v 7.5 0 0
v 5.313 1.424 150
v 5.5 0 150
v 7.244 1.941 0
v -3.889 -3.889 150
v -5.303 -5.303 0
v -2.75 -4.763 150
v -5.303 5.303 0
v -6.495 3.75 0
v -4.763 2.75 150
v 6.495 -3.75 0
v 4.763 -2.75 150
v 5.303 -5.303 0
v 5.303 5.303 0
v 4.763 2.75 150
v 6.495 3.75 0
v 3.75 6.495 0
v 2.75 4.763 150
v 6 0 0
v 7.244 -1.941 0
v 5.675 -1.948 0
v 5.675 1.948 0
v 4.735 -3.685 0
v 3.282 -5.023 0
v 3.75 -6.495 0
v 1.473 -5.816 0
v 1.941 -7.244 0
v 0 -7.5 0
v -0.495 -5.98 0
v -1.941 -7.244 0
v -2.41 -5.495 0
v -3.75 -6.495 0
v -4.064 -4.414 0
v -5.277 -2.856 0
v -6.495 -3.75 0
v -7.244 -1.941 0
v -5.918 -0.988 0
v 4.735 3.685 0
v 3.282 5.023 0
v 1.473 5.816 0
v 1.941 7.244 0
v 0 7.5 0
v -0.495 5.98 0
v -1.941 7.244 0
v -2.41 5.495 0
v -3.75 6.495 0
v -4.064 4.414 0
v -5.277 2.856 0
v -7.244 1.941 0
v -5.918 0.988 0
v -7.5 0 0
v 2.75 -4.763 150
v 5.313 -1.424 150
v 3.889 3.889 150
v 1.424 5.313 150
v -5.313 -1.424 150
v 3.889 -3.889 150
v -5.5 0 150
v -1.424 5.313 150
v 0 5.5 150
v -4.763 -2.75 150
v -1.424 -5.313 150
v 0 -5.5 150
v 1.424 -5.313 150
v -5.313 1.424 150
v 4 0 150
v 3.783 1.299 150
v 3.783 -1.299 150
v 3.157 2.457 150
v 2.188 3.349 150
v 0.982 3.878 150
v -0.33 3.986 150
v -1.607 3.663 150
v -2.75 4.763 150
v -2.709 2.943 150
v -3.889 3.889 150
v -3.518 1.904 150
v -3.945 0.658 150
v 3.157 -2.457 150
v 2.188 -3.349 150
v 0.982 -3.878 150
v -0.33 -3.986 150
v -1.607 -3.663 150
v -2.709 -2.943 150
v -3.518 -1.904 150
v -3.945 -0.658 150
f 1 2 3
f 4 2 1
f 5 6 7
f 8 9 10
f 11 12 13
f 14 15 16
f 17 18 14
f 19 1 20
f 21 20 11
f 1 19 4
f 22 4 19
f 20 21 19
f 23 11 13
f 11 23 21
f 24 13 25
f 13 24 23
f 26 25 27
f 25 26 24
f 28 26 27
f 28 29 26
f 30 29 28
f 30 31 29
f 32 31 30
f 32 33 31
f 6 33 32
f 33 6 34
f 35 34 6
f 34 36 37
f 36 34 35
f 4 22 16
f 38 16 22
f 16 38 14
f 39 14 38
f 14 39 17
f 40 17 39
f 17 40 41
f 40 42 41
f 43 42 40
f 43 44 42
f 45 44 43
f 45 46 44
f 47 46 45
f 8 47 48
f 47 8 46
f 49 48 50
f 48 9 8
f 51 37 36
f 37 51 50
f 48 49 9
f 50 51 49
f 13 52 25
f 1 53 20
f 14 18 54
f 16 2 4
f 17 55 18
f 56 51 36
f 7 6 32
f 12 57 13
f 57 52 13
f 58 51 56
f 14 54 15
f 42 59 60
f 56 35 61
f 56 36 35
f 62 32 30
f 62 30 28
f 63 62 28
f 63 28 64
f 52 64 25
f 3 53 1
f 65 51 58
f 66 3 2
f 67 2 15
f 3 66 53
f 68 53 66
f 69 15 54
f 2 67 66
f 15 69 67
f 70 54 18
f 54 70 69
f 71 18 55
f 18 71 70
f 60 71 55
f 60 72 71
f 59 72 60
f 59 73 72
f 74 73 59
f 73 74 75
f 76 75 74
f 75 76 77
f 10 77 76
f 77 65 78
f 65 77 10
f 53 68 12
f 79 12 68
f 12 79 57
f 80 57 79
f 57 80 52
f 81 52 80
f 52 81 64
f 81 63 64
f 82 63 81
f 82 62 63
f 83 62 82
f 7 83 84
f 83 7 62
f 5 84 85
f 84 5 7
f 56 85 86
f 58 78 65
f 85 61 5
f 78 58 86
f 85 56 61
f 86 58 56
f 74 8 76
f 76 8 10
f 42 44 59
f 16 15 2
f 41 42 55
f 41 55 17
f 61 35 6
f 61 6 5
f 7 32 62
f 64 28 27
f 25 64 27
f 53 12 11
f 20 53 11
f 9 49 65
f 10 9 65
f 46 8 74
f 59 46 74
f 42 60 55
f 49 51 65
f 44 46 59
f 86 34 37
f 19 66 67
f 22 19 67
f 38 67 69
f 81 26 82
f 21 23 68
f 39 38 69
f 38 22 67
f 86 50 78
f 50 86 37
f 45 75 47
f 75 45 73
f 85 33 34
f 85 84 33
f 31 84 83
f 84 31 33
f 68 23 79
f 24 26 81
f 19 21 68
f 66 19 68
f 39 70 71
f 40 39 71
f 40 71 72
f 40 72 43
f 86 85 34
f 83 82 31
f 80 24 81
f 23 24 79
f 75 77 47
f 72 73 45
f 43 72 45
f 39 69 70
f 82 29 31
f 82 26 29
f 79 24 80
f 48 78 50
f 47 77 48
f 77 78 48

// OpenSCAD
height = 150;
thickness = 1.5;
radius = 7.5;
taper = 2;

difference () {
    cylinder(h = height, r1 = radius, r2 = radius - taper);
    cylinder(h = height, r1 = radius - thickness, r2 = radius - taper - thickness);
}
